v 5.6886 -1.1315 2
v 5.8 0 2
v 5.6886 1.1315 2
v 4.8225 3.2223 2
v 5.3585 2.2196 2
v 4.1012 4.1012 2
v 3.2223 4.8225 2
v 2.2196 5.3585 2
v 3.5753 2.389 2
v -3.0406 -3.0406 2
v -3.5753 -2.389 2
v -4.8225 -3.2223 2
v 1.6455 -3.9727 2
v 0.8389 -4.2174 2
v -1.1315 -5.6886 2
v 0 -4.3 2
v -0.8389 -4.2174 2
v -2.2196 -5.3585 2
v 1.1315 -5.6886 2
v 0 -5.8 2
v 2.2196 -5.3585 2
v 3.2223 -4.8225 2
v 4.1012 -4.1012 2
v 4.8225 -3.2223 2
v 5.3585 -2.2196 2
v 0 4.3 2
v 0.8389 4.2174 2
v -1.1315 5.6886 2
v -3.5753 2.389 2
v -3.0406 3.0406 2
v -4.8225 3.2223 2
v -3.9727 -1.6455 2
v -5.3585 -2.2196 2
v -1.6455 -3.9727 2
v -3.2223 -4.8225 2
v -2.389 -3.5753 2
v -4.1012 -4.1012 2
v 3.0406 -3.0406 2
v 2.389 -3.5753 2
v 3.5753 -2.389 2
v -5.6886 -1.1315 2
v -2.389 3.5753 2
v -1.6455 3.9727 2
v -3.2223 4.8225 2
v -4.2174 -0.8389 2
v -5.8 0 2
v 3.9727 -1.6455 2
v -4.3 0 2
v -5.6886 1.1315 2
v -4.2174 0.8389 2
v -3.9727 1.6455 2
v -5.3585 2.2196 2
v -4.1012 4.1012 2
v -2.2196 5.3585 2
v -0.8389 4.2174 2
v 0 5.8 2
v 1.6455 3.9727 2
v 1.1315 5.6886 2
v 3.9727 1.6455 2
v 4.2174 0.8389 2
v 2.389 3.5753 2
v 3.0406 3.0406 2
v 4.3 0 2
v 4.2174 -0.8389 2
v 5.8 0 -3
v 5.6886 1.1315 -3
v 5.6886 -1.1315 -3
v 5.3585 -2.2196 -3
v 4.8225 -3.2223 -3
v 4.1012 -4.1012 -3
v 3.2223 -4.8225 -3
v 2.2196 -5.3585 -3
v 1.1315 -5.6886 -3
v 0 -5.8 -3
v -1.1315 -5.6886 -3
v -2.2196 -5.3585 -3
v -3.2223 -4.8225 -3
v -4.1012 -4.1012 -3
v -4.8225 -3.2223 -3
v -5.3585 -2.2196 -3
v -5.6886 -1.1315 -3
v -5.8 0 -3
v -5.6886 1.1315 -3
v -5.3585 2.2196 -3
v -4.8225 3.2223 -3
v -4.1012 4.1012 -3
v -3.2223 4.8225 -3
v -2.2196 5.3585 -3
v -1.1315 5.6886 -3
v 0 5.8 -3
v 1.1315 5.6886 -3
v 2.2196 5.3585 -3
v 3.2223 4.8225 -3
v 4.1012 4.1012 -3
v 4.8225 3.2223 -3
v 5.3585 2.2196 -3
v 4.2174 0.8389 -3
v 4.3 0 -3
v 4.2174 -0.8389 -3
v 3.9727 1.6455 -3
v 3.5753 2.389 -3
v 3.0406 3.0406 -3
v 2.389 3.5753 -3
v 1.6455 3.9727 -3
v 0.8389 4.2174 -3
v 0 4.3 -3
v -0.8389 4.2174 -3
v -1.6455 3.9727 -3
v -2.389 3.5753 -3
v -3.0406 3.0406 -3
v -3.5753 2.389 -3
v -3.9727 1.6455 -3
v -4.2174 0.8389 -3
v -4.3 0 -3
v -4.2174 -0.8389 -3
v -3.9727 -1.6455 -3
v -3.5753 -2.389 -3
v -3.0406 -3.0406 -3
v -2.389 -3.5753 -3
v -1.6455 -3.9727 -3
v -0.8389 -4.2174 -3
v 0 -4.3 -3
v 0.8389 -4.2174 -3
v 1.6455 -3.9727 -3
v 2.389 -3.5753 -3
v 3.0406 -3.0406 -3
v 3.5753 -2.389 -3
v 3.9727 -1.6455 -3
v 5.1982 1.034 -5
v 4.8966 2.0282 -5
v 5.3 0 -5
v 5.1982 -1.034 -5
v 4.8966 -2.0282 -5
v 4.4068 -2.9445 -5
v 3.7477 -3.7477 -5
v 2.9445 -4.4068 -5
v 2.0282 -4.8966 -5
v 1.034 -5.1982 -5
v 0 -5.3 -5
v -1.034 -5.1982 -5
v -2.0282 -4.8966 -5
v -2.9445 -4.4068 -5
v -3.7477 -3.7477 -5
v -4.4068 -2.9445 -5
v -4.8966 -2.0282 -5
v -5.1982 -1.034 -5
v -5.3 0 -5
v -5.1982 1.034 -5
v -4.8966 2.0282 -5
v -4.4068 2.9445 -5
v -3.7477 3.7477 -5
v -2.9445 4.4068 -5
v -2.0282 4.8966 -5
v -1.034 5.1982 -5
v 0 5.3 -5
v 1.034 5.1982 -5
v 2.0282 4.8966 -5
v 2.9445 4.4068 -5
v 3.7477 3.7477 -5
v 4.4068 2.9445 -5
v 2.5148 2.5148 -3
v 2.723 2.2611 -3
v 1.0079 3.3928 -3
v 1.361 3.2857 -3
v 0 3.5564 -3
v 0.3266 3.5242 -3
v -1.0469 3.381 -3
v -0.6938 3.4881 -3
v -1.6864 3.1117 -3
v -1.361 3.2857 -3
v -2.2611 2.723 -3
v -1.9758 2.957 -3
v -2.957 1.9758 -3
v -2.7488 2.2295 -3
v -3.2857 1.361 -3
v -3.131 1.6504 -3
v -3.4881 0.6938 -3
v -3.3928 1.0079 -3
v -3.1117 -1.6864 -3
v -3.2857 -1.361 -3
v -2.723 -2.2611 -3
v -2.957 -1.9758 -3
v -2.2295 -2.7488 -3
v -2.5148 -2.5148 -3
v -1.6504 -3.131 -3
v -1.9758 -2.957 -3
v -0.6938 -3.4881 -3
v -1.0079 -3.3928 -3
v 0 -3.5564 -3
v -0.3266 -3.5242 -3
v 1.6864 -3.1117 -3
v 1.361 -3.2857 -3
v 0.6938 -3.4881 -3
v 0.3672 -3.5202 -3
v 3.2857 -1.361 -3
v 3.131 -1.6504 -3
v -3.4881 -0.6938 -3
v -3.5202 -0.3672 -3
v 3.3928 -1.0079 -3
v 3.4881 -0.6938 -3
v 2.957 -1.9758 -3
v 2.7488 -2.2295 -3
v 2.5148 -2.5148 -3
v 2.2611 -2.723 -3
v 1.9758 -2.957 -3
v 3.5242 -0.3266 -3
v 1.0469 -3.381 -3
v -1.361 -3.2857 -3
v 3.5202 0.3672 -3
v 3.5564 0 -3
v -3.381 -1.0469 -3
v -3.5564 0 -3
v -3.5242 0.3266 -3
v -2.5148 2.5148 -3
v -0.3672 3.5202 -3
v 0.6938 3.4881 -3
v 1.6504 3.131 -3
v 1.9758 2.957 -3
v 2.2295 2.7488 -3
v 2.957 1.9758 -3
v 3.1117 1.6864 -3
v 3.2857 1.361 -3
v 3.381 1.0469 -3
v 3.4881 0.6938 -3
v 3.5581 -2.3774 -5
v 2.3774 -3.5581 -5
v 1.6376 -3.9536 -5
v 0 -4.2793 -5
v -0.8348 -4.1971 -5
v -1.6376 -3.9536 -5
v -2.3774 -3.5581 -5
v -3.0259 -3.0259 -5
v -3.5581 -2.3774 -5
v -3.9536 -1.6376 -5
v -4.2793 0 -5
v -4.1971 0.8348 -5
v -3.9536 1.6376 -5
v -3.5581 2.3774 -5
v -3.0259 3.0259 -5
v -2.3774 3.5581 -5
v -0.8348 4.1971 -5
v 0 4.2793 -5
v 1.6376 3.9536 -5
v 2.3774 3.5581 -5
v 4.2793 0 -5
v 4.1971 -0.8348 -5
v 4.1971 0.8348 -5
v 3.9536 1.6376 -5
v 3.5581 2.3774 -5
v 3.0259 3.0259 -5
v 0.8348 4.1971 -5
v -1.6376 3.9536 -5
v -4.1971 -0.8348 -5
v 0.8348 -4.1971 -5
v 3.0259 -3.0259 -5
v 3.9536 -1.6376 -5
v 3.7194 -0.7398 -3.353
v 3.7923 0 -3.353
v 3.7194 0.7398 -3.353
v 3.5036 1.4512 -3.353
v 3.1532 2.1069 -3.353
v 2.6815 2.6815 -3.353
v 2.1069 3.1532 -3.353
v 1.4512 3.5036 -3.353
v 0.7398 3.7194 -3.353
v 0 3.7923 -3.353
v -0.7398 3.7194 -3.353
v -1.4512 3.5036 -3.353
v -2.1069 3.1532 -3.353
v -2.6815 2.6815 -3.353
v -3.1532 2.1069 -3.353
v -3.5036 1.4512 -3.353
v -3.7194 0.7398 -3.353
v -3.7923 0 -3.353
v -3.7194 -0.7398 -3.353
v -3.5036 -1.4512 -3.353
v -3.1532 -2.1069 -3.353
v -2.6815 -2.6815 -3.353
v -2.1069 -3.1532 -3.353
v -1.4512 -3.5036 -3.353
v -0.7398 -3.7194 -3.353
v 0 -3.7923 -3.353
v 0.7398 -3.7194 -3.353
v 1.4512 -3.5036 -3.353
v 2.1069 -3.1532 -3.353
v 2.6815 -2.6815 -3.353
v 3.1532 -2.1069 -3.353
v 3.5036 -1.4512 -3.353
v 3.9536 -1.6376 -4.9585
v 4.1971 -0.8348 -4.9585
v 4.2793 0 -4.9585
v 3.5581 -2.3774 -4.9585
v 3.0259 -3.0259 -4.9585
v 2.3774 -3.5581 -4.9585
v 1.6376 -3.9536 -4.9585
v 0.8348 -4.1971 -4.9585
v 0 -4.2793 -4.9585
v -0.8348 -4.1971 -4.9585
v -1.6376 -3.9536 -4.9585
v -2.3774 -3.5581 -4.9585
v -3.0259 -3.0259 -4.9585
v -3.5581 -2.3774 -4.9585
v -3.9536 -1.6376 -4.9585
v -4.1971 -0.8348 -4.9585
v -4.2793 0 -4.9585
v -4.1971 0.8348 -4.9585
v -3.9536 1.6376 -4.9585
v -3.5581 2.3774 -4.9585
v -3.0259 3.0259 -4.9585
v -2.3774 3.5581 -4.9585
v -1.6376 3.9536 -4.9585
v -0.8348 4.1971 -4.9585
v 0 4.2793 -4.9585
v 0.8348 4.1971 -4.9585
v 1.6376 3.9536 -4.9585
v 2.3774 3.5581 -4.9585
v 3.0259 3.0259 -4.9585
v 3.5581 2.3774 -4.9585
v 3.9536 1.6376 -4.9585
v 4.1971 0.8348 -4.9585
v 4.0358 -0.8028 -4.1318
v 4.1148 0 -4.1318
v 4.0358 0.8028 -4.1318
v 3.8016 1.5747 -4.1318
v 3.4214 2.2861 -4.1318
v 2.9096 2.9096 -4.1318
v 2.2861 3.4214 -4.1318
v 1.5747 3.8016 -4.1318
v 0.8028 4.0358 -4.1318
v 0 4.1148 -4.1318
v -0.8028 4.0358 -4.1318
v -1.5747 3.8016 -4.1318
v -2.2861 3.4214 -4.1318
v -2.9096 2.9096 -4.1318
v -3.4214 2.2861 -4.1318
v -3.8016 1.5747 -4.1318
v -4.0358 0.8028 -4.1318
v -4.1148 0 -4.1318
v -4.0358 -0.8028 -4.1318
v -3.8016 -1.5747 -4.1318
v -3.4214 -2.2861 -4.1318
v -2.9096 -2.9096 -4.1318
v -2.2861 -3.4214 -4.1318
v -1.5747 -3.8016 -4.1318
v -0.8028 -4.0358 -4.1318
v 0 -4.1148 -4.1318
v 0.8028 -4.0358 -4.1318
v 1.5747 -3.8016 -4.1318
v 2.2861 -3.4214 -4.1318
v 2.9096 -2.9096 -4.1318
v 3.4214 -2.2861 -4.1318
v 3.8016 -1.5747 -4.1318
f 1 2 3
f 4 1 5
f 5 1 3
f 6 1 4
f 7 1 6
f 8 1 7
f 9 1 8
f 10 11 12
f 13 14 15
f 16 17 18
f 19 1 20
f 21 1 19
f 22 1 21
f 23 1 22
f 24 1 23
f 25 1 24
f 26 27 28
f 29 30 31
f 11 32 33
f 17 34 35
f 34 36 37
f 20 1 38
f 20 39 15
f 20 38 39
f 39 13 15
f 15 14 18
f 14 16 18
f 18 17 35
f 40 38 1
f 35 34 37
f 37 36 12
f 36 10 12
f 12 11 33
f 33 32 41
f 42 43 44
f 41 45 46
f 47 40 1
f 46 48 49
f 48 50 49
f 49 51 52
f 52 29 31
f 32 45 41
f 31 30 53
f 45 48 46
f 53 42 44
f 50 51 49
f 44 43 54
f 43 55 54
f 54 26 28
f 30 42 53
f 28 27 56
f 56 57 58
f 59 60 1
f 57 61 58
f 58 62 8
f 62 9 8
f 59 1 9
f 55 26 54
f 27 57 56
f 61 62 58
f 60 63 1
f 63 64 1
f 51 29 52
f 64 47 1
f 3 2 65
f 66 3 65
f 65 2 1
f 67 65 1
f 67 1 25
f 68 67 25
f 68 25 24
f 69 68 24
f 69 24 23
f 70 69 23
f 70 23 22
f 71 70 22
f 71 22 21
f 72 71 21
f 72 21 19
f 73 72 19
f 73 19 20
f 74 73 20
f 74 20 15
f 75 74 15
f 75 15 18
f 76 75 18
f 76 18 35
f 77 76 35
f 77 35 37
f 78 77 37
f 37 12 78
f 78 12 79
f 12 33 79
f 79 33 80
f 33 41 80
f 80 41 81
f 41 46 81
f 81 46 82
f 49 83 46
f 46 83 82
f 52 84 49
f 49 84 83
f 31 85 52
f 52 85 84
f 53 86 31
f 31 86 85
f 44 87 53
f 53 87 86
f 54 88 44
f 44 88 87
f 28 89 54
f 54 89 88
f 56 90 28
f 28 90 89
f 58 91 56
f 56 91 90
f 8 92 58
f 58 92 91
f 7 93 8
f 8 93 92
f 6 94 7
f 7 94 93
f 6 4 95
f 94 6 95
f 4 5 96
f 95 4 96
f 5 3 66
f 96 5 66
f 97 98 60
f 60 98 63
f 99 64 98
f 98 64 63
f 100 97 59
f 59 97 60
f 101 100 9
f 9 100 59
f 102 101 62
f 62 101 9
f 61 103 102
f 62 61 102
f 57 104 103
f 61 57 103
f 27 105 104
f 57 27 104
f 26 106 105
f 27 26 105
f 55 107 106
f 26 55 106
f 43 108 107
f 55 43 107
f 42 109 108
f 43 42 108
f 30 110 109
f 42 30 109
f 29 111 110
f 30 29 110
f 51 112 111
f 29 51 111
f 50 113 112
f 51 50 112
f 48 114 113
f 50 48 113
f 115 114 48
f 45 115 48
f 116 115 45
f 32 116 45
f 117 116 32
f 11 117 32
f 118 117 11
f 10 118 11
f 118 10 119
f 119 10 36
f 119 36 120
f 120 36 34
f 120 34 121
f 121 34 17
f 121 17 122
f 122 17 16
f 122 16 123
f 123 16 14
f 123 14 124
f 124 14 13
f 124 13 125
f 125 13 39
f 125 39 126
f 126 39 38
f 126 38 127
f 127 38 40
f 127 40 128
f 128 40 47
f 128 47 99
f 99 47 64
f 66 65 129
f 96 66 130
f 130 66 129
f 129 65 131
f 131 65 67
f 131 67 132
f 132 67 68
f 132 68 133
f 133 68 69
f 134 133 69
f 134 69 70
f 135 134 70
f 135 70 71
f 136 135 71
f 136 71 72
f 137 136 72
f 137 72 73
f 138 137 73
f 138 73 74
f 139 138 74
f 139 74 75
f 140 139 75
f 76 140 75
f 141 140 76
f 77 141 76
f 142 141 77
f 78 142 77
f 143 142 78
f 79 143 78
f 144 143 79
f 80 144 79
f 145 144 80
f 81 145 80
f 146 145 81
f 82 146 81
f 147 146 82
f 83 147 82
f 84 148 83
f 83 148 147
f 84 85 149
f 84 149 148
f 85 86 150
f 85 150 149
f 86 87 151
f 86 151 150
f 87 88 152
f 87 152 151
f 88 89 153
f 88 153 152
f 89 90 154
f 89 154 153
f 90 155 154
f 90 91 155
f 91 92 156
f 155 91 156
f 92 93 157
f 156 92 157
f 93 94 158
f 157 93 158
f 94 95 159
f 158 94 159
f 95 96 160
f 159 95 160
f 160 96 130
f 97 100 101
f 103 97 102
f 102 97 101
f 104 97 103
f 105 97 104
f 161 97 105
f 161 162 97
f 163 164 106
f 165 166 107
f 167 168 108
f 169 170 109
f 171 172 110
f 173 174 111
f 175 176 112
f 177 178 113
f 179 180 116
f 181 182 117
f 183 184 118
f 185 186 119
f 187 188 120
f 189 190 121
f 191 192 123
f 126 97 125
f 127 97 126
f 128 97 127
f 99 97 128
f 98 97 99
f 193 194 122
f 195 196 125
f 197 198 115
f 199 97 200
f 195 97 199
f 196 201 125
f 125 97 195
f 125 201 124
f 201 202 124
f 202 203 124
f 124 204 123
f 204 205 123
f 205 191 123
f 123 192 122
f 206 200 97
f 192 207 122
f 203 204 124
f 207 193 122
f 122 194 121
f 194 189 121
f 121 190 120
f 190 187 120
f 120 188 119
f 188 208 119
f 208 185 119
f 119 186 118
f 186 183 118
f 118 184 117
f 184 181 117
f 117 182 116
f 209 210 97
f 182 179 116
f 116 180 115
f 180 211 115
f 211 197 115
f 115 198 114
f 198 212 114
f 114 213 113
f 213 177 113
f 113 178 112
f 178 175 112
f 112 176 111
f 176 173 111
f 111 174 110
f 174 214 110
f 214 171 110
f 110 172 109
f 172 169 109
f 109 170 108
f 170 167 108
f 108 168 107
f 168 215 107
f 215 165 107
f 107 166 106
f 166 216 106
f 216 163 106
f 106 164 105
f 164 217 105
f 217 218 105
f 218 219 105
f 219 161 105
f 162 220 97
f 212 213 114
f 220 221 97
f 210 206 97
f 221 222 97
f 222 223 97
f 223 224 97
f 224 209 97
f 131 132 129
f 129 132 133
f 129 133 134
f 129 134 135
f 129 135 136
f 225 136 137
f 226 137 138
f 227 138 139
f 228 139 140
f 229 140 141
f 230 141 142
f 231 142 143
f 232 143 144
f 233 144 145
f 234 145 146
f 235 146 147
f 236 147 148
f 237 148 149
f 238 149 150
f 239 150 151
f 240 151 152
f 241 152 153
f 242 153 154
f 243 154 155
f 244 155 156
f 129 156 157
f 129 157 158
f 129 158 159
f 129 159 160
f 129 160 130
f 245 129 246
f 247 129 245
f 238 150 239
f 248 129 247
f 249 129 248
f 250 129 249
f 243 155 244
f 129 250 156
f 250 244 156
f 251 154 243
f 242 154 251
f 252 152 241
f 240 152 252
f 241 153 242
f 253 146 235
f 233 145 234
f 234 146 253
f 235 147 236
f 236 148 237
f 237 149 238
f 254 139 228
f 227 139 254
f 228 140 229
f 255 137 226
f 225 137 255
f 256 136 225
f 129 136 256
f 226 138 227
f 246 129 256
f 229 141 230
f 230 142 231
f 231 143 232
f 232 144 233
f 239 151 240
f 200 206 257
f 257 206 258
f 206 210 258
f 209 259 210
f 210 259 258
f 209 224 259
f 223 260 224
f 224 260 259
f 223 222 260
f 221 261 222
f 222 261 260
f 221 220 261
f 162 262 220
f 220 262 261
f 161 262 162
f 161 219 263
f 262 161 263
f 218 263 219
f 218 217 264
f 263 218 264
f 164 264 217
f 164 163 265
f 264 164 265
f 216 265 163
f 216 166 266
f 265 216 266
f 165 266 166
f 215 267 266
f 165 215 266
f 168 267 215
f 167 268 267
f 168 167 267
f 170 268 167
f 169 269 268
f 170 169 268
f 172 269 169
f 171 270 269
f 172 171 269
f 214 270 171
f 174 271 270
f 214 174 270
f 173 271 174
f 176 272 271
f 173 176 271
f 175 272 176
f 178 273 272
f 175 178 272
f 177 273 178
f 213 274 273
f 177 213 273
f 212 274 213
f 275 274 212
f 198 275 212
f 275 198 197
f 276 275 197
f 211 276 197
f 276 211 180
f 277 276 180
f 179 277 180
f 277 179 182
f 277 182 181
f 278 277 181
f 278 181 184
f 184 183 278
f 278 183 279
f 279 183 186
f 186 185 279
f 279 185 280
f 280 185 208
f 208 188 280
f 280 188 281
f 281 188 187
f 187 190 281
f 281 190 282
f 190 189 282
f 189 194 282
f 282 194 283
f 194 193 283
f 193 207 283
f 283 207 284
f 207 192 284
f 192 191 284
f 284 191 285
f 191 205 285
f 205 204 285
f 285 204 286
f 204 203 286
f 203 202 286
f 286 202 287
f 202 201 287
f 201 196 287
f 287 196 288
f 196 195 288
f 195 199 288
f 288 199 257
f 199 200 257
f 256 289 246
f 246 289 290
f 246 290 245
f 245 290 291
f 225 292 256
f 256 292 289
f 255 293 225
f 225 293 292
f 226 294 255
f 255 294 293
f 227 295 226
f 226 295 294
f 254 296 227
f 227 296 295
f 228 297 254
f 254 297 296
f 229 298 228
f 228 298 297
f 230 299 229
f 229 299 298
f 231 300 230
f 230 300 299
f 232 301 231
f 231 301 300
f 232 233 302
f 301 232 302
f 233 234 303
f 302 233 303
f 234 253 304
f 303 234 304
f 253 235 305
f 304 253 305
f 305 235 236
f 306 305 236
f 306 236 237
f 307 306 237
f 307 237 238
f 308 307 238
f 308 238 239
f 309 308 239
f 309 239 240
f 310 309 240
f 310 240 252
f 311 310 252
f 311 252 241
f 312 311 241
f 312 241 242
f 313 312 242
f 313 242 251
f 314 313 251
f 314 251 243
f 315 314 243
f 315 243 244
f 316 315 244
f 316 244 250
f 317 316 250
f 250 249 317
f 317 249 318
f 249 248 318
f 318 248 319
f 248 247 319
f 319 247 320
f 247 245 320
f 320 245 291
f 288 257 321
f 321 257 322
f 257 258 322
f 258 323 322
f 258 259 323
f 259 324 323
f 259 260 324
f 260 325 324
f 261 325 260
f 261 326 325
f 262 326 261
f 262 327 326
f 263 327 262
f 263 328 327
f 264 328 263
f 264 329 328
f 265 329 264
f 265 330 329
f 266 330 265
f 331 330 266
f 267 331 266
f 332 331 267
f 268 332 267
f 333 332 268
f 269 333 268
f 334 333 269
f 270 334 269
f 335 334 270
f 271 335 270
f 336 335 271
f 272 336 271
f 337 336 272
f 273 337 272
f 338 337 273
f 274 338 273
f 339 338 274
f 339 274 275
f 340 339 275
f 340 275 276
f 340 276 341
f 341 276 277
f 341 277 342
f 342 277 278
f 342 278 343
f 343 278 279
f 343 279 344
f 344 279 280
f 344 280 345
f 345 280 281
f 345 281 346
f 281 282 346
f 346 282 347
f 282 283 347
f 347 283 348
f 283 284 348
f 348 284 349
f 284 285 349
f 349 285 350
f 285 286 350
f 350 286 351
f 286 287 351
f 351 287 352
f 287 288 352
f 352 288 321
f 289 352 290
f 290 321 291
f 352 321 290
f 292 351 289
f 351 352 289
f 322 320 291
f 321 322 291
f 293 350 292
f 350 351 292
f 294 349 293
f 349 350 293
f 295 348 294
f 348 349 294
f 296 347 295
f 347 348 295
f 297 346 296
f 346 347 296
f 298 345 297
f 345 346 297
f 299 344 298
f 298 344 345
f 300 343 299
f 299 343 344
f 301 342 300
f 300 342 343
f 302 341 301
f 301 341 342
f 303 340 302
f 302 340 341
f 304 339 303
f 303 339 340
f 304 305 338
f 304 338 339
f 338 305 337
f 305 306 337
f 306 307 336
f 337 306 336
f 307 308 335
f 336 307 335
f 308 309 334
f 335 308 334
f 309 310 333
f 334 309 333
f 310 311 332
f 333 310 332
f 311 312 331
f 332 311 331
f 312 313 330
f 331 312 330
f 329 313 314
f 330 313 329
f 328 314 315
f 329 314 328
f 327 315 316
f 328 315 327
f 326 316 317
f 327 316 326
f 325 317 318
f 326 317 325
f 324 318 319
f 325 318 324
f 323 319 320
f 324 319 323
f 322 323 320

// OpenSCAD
// file: configuration.scad
motor_end_height=44;
//idler_end_height=28;
idler_end_height=44;
carriage_height=24;
platform_thickness=8;

sanguinololu=true;					// places mounting holes for the Sanguinololu controller
carbon_rods=true;					// turns on option for carbon diagonal rods just for looks!

frame_thickness=6;   				// 6mm acrylic
pcb_thickness=2;						// used for rendering PCB and approximating build volume

smooth_rod_length=495;  				// determins vertical build height with 508 for 8" 
rod_diameter=8;						// might be interesting to have larger rods
platform_hinge_offset=33;
carriage_hinge_offset=22;

printbed=[155,155];  				// printrbed 6x6 -  210,210 for prusa 8x8 platform
printbed_screw_spacing=[146.5,147]; 	// sets screw spacing for heated bed default: printrbed

tower_radius = printbed[0]*0.9;
//rod_length=printbed[0]*1.2;
rod_length=187+9.54;

corner_radius=12;
frame_radius=(tower_radius-rod_diameter/2-corner_radius)/cos(30);

//jjt
magnetsize=9.52/2;
// main file
include <configuration.scad>

union() {
rotate([0,180,0]) translate([0,0,3])
difference() {
	union() {
		translate([0,0,1.0]) cylinder(h=2,r1=(8.6+3)/2,r2=(8.6+2)/2,center=true, $fn=32);
		translate([0,0,-2.5]) cylinder(h=5,r=(8.6+3)/2,center=true, $fn=32);
	}

	translate([0,0,-5 + 4/2]) cylinder(h=6,r=8.6/2,center=true, $fn=32);
	translate([0,0,magnetsize/2   ]) sphere(r=8.6/2,center=true, $fn=32);
}

//	translate([0,0,magnetsize/2 + 4/2  ]) sphere(r=8.33/2,center=true, $fn=32);
}
